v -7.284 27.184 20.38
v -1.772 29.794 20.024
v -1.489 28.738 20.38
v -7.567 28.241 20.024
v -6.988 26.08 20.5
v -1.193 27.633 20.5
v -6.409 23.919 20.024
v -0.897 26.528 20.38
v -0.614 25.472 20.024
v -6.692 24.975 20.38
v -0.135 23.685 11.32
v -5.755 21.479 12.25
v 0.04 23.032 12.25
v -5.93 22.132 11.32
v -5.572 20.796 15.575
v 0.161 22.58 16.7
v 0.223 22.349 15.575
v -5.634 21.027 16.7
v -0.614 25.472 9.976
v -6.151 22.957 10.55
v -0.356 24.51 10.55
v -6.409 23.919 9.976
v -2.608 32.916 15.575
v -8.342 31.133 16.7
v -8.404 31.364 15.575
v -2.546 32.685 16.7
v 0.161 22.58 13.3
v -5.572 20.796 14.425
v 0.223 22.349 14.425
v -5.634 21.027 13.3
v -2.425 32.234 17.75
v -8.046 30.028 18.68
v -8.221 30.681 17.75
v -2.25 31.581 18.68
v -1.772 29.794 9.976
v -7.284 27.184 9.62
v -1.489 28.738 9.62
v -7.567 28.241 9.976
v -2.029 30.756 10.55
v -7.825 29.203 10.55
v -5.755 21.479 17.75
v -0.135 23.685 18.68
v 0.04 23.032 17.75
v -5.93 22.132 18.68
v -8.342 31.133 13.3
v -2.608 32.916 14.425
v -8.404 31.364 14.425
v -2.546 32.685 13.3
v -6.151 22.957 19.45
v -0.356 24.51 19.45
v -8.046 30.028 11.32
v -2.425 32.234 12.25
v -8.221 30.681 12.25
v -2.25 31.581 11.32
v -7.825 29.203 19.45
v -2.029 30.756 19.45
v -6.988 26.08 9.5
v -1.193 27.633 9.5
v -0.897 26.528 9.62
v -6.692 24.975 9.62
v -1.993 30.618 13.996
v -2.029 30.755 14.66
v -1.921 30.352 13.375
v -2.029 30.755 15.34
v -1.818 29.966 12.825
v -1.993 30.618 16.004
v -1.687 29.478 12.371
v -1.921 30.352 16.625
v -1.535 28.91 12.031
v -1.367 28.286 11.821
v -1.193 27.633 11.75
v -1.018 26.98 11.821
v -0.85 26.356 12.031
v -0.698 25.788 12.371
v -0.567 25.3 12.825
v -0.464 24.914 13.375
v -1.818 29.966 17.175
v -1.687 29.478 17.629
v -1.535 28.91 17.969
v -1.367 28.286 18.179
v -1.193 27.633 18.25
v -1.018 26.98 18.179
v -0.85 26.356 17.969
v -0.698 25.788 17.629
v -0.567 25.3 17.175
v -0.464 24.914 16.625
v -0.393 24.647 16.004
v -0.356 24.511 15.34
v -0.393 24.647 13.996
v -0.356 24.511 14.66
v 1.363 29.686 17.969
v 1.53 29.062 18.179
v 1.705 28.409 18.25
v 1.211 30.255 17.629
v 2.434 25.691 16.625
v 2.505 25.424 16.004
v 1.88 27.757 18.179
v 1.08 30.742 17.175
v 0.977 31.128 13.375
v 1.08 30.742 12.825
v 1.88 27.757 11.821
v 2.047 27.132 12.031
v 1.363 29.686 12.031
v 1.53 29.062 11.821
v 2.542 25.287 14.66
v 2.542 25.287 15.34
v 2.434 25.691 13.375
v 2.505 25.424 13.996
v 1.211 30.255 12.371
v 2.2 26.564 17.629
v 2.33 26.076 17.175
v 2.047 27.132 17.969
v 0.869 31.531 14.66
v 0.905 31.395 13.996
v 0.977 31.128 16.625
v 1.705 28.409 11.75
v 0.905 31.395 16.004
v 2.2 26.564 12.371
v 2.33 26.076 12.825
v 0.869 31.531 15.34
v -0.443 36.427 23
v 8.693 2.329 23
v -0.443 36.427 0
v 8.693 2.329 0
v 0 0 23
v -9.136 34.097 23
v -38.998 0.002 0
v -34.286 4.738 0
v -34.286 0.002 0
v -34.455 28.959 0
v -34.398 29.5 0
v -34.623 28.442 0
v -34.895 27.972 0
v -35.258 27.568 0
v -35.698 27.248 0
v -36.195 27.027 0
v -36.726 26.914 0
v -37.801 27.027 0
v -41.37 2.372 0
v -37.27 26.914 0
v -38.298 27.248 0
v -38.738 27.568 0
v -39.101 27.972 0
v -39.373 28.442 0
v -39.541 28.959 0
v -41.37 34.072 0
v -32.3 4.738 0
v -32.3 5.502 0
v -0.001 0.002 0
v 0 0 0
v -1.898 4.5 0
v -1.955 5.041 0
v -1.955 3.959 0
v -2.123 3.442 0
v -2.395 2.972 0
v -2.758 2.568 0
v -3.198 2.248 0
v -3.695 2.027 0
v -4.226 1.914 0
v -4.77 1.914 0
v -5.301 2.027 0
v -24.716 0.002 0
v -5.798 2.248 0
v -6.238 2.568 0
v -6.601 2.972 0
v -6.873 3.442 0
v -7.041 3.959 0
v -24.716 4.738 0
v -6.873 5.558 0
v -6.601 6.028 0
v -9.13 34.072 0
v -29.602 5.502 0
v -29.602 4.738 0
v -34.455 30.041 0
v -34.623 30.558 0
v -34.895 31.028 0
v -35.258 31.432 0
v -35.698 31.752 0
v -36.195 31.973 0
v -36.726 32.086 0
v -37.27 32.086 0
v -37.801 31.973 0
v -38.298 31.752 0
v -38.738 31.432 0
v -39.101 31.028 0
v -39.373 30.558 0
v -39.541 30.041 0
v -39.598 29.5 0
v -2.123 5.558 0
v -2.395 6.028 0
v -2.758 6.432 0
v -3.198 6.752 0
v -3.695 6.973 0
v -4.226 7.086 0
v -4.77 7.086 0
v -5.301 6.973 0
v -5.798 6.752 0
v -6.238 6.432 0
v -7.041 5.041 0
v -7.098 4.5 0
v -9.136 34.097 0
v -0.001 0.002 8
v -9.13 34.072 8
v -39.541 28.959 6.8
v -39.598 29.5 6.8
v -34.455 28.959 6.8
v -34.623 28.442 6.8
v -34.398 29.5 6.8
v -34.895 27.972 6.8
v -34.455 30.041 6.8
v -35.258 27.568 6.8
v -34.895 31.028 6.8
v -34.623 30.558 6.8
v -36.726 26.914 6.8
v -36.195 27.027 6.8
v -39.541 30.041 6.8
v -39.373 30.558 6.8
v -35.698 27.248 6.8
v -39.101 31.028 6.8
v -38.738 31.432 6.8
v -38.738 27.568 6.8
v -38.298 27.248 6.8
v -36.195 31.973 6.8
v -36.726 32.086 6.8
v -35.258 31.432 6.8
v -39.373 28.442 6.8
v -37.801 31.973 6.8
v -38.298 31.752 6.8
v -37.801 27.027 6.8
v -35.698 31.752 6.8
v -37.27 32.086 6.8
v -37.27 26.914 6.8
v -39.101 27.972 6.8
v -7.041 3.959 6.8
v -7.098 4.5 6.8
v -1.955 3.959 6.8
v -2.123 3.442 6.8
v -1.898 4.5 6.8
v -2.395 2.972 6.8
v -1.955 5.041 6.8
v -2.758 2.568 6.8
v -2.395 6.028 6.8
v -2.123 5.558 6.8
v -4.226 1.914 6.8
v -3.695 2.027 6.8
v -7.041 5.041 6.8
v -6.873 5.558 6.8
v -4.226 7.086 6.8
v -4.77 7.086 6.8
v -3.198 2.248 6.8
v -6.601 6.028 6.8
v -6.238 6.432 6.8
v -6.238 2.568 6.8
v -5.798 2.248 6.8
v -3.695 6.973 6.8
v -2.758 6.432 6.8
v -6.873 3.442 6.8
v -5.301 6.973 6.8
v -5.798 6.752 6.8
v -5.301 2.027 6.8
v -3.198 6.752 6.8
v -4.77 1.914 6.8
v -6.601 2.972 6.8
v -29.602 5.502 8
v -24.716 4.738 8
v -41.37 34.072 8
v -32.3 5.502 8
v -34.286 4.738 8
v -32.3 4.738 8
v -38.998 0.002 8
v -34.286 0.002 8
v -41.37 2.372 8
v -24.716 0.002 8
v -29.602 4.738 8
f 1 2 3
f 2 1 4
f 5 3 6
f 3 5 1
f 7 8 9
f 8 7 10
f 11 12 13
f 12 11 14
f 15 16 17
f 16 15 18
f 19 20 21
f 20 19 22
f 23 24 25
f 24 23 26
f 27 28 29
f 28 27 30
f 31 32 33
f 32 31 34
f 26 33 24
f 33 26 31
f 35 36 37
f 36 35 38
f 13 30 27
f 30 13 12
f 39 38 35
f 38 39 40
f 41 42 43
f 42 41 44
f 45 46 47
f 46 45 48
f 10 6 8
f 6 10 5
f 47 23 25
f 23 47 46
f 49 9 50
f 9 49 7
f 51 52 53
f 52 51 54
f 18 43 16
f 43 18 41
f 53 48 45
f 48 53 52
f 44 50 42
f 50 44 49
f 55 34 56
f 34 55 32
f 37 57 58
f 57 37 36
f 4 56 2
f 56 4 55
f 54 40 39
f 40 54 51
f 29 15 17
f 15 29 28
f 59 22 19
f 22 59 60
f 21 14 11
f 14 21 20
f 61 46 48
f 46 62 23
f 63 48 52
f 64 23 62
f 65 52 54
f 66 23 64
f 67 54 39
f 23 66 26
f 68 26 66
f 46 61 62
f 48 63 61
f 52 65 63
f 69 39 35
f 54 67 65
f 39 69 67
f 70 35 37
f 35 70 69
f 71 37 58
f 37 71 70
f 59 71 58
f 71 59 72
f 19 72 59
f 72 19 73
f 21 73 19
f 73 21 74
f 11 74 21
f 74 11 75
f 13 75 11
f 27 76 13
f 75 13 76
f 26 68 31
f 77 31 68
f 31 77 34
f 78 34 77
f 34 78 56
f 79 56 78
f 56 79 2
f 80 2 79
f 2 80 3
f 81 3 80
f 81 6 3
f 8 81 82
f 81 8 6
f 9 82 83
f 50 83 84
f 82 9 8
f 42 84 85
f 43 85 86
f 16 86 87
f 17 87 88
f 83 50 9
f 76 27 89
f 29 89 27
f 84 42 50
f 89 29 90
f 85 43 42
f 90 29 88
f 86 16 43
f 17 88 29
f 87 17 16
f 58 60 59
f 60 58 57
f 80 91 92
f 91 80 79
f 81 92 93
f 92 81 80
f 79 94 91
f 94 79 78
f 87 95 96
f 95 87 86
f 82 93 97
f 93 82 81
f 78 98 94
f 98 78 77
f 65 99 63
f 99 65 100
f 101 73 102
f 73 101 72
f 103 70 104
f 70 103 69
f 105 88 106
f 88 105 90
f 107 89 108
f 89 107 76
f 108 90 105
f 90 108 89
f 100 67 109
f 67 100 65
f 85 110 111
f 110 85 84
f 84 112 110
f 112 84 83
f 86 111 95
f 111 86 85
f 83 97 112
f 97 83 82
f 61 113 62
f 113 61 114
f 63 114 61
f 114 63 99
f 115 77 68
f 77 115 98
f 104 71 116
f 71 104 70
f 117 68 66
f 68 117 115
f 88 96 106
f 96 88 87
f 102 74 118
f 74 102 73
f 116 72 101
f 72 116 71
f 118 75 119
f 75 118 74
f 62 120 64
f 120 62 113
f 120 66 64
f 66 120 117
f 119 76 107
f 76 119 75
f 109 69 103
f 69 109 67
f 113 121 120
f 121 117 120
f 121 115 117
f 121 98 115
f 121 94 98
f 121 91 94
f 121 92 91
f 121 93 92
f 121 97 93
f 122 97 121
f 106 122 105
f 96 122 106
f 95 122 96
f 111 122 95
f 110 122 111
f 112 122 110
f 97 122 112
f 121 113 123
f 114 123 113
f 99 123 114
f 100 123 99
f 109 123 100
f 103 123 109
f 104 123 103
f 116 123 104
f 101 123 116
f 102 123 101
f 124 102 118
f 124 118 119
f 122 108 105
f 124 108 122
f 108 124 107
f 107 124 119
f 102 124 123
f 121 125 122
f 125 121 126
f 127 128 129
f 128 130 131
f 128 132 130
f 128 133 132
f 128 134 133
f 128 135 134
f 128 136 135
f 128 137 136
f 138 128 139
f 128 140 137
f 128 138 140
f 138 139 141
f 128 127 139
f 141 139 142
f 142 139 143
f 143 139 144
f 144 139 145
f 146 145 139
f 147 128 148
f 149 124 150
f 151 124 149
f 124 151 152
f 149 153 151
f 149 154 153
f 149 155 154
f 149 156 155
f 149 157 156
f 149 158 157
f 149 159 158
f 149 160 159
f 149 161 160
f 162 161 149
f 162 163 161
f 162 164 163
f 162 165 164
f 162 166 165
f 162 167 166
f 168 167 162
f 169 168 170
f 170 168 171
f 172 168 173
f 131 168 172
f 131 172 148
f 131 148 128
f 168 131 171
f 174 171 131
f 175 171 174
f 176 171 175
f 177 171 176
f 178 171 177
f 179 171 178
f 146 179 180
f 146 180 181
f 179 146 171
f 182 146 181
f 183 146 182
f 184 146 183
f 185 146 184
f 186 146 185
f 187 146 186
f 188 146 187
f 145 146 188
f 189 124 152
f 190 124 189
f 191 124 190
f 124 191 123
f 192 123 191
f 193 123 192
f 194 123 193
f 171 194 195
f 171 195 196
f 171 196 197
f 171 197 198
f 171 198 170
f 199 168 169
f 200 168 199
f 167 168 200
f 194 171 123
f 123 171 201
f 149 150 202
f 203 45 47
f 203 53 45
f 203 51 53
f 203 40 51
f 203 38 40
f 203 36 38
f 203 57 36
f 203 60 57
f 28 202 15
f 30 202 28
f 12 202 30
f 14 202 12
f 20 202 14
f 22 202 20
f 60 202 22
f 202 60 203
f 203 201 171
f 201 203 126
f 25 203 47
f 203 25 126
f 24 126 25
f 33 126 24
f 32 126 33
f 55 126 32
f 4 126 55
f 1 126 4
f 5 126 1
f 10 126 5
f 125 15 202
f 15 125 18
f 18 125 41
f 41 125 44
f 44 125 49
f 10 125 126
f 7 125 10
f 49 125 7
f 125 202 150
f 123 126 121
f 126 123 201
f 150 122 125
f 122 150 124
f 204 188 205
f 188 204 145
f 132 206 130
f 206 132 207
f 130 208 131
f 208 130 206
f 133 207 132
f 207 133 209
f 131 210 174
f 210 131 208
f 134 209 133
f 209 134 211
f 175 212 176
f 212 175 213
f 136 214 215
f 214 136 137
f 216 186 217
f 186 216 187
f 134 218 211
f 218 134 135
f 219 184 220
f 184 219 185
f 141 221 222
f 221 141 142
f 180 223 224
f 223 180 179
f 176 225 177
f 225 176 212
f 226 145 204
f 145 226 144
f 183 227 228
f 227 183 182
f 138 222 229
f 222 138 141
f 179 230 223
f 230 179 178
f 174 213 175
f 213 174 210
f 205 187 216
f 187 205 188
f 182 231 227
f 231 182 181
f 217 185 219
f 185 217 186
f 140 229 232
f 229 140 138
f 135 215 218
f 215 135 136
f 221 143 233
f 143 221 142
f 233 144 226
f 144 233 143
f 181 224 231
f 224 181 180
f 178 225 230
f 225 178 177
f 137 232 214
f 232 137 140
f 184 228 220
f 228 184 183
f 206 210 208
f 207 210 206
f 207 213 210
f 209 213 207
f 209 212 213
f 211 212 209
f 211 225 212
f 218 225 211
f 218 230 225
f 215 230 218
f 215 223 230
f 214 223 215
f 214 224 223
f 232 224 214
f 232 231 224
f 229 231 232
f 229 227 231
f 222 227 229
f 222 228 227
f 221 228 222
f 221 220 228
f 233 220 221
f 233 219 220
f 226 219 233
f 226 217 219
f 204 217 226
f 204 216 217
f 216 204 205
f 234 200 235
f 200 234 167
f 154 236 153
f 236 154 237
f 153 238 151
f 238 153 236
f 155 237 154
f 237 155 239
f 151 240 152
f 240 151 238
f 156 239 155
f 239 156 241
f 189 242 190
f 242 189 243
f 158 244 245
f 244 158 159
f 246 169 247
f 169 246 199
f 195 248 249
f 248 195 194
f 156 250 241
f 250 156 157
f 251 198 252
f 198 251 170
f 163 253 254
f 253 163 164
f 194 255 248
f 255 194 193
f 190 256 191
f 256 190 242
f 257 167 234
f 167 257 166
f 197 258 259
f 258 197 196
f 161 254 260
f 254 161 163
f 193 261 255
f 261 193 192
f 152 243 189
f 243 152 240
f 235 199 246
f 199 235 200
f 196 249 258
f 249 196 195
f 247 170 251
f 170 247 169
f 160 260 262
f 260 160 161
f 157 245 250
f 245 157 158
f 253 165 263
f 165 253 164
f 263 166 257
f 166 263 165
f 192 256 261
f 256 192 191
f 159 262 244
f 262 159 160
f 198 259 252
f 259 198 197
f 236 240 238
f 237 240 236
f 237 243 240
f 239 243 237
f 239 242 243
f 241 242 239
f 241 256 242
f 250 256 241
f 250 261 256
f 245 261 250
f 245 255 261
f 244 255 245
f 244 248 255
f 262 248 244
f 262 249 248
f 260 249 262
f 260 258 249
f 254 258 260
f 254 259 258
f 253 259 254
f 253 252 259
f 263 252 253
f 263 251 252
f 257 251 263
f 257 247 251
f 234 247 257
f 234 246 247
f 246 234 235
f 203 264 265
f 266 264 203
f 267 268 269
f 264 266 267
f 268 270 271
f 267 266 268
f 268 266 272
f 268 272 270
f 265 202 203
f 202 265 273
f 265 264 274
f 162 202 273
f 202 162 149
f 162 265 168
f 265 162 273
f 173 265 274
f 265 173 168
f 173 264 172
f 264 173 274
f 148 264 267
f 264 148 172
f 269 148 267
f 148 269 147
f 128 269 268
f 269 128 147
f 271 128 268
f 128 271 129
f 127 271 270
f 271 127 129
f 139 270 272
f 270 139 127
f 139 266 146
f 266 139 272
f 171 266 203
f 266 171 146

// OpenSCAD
$fn=30;

thick=8;

rotate([0,0,15]) difference() {
   cube([9,35.3,thick+15]);
   translate([6,27,15]) rotate([0,-90,0]) union() {
      cylinder(d=11,h=10);
      translate([0,0,-9]) cylinder(d=6.5,h=10);
   }
}

/* main body */
translate([-16.998,0,0]) rotate([180,0,0]) translate([0,0,-thick]) difference() {
   union() {
      linear_extrude(height=thick)
         polygon(points=[[16.998,-0.002], [-7.718,-0.002], [-7.718, -4.738],
                         [-12.604,-4.738], [-12.604,-5.502], [-15.302,-5.502],
                         [-15.302,-4.738], [-17.288,-4.738], [-17.288,-0.002],
                         [-22,-0.002], [-24.372,-2.372], [-24.372,-34.072],
                         [16.998,-34.072]]);
   }
   
   /* round head M5 hole */
   if (0) translate([16.998-8.5,-20,0]) {
      translate([0,0,3.8]) cylinder(d=11,h=10);
      translate([0,0,-2]) cylinder(d=5.2,h=3.5+2);
   }

   screwHoles();
}

module screwHoles() {
   translate([-20.0,-29.5,0]) {
      translate([0,0,thick-6.9+0.1]) cylinder(d=5.2,h=6.9);
      translate([0,0,thick+0.1]) cylinder(d=3.2,h=30);
   }
   translate([12.5,-4.5,0]) {
      translate([0,0,thick-6.9+0.1]) cylinder(d=5.2,h=6.9);
      translate([0,0,thick+0.1]) cylinder(d=3.2,h=30);
   }
}
